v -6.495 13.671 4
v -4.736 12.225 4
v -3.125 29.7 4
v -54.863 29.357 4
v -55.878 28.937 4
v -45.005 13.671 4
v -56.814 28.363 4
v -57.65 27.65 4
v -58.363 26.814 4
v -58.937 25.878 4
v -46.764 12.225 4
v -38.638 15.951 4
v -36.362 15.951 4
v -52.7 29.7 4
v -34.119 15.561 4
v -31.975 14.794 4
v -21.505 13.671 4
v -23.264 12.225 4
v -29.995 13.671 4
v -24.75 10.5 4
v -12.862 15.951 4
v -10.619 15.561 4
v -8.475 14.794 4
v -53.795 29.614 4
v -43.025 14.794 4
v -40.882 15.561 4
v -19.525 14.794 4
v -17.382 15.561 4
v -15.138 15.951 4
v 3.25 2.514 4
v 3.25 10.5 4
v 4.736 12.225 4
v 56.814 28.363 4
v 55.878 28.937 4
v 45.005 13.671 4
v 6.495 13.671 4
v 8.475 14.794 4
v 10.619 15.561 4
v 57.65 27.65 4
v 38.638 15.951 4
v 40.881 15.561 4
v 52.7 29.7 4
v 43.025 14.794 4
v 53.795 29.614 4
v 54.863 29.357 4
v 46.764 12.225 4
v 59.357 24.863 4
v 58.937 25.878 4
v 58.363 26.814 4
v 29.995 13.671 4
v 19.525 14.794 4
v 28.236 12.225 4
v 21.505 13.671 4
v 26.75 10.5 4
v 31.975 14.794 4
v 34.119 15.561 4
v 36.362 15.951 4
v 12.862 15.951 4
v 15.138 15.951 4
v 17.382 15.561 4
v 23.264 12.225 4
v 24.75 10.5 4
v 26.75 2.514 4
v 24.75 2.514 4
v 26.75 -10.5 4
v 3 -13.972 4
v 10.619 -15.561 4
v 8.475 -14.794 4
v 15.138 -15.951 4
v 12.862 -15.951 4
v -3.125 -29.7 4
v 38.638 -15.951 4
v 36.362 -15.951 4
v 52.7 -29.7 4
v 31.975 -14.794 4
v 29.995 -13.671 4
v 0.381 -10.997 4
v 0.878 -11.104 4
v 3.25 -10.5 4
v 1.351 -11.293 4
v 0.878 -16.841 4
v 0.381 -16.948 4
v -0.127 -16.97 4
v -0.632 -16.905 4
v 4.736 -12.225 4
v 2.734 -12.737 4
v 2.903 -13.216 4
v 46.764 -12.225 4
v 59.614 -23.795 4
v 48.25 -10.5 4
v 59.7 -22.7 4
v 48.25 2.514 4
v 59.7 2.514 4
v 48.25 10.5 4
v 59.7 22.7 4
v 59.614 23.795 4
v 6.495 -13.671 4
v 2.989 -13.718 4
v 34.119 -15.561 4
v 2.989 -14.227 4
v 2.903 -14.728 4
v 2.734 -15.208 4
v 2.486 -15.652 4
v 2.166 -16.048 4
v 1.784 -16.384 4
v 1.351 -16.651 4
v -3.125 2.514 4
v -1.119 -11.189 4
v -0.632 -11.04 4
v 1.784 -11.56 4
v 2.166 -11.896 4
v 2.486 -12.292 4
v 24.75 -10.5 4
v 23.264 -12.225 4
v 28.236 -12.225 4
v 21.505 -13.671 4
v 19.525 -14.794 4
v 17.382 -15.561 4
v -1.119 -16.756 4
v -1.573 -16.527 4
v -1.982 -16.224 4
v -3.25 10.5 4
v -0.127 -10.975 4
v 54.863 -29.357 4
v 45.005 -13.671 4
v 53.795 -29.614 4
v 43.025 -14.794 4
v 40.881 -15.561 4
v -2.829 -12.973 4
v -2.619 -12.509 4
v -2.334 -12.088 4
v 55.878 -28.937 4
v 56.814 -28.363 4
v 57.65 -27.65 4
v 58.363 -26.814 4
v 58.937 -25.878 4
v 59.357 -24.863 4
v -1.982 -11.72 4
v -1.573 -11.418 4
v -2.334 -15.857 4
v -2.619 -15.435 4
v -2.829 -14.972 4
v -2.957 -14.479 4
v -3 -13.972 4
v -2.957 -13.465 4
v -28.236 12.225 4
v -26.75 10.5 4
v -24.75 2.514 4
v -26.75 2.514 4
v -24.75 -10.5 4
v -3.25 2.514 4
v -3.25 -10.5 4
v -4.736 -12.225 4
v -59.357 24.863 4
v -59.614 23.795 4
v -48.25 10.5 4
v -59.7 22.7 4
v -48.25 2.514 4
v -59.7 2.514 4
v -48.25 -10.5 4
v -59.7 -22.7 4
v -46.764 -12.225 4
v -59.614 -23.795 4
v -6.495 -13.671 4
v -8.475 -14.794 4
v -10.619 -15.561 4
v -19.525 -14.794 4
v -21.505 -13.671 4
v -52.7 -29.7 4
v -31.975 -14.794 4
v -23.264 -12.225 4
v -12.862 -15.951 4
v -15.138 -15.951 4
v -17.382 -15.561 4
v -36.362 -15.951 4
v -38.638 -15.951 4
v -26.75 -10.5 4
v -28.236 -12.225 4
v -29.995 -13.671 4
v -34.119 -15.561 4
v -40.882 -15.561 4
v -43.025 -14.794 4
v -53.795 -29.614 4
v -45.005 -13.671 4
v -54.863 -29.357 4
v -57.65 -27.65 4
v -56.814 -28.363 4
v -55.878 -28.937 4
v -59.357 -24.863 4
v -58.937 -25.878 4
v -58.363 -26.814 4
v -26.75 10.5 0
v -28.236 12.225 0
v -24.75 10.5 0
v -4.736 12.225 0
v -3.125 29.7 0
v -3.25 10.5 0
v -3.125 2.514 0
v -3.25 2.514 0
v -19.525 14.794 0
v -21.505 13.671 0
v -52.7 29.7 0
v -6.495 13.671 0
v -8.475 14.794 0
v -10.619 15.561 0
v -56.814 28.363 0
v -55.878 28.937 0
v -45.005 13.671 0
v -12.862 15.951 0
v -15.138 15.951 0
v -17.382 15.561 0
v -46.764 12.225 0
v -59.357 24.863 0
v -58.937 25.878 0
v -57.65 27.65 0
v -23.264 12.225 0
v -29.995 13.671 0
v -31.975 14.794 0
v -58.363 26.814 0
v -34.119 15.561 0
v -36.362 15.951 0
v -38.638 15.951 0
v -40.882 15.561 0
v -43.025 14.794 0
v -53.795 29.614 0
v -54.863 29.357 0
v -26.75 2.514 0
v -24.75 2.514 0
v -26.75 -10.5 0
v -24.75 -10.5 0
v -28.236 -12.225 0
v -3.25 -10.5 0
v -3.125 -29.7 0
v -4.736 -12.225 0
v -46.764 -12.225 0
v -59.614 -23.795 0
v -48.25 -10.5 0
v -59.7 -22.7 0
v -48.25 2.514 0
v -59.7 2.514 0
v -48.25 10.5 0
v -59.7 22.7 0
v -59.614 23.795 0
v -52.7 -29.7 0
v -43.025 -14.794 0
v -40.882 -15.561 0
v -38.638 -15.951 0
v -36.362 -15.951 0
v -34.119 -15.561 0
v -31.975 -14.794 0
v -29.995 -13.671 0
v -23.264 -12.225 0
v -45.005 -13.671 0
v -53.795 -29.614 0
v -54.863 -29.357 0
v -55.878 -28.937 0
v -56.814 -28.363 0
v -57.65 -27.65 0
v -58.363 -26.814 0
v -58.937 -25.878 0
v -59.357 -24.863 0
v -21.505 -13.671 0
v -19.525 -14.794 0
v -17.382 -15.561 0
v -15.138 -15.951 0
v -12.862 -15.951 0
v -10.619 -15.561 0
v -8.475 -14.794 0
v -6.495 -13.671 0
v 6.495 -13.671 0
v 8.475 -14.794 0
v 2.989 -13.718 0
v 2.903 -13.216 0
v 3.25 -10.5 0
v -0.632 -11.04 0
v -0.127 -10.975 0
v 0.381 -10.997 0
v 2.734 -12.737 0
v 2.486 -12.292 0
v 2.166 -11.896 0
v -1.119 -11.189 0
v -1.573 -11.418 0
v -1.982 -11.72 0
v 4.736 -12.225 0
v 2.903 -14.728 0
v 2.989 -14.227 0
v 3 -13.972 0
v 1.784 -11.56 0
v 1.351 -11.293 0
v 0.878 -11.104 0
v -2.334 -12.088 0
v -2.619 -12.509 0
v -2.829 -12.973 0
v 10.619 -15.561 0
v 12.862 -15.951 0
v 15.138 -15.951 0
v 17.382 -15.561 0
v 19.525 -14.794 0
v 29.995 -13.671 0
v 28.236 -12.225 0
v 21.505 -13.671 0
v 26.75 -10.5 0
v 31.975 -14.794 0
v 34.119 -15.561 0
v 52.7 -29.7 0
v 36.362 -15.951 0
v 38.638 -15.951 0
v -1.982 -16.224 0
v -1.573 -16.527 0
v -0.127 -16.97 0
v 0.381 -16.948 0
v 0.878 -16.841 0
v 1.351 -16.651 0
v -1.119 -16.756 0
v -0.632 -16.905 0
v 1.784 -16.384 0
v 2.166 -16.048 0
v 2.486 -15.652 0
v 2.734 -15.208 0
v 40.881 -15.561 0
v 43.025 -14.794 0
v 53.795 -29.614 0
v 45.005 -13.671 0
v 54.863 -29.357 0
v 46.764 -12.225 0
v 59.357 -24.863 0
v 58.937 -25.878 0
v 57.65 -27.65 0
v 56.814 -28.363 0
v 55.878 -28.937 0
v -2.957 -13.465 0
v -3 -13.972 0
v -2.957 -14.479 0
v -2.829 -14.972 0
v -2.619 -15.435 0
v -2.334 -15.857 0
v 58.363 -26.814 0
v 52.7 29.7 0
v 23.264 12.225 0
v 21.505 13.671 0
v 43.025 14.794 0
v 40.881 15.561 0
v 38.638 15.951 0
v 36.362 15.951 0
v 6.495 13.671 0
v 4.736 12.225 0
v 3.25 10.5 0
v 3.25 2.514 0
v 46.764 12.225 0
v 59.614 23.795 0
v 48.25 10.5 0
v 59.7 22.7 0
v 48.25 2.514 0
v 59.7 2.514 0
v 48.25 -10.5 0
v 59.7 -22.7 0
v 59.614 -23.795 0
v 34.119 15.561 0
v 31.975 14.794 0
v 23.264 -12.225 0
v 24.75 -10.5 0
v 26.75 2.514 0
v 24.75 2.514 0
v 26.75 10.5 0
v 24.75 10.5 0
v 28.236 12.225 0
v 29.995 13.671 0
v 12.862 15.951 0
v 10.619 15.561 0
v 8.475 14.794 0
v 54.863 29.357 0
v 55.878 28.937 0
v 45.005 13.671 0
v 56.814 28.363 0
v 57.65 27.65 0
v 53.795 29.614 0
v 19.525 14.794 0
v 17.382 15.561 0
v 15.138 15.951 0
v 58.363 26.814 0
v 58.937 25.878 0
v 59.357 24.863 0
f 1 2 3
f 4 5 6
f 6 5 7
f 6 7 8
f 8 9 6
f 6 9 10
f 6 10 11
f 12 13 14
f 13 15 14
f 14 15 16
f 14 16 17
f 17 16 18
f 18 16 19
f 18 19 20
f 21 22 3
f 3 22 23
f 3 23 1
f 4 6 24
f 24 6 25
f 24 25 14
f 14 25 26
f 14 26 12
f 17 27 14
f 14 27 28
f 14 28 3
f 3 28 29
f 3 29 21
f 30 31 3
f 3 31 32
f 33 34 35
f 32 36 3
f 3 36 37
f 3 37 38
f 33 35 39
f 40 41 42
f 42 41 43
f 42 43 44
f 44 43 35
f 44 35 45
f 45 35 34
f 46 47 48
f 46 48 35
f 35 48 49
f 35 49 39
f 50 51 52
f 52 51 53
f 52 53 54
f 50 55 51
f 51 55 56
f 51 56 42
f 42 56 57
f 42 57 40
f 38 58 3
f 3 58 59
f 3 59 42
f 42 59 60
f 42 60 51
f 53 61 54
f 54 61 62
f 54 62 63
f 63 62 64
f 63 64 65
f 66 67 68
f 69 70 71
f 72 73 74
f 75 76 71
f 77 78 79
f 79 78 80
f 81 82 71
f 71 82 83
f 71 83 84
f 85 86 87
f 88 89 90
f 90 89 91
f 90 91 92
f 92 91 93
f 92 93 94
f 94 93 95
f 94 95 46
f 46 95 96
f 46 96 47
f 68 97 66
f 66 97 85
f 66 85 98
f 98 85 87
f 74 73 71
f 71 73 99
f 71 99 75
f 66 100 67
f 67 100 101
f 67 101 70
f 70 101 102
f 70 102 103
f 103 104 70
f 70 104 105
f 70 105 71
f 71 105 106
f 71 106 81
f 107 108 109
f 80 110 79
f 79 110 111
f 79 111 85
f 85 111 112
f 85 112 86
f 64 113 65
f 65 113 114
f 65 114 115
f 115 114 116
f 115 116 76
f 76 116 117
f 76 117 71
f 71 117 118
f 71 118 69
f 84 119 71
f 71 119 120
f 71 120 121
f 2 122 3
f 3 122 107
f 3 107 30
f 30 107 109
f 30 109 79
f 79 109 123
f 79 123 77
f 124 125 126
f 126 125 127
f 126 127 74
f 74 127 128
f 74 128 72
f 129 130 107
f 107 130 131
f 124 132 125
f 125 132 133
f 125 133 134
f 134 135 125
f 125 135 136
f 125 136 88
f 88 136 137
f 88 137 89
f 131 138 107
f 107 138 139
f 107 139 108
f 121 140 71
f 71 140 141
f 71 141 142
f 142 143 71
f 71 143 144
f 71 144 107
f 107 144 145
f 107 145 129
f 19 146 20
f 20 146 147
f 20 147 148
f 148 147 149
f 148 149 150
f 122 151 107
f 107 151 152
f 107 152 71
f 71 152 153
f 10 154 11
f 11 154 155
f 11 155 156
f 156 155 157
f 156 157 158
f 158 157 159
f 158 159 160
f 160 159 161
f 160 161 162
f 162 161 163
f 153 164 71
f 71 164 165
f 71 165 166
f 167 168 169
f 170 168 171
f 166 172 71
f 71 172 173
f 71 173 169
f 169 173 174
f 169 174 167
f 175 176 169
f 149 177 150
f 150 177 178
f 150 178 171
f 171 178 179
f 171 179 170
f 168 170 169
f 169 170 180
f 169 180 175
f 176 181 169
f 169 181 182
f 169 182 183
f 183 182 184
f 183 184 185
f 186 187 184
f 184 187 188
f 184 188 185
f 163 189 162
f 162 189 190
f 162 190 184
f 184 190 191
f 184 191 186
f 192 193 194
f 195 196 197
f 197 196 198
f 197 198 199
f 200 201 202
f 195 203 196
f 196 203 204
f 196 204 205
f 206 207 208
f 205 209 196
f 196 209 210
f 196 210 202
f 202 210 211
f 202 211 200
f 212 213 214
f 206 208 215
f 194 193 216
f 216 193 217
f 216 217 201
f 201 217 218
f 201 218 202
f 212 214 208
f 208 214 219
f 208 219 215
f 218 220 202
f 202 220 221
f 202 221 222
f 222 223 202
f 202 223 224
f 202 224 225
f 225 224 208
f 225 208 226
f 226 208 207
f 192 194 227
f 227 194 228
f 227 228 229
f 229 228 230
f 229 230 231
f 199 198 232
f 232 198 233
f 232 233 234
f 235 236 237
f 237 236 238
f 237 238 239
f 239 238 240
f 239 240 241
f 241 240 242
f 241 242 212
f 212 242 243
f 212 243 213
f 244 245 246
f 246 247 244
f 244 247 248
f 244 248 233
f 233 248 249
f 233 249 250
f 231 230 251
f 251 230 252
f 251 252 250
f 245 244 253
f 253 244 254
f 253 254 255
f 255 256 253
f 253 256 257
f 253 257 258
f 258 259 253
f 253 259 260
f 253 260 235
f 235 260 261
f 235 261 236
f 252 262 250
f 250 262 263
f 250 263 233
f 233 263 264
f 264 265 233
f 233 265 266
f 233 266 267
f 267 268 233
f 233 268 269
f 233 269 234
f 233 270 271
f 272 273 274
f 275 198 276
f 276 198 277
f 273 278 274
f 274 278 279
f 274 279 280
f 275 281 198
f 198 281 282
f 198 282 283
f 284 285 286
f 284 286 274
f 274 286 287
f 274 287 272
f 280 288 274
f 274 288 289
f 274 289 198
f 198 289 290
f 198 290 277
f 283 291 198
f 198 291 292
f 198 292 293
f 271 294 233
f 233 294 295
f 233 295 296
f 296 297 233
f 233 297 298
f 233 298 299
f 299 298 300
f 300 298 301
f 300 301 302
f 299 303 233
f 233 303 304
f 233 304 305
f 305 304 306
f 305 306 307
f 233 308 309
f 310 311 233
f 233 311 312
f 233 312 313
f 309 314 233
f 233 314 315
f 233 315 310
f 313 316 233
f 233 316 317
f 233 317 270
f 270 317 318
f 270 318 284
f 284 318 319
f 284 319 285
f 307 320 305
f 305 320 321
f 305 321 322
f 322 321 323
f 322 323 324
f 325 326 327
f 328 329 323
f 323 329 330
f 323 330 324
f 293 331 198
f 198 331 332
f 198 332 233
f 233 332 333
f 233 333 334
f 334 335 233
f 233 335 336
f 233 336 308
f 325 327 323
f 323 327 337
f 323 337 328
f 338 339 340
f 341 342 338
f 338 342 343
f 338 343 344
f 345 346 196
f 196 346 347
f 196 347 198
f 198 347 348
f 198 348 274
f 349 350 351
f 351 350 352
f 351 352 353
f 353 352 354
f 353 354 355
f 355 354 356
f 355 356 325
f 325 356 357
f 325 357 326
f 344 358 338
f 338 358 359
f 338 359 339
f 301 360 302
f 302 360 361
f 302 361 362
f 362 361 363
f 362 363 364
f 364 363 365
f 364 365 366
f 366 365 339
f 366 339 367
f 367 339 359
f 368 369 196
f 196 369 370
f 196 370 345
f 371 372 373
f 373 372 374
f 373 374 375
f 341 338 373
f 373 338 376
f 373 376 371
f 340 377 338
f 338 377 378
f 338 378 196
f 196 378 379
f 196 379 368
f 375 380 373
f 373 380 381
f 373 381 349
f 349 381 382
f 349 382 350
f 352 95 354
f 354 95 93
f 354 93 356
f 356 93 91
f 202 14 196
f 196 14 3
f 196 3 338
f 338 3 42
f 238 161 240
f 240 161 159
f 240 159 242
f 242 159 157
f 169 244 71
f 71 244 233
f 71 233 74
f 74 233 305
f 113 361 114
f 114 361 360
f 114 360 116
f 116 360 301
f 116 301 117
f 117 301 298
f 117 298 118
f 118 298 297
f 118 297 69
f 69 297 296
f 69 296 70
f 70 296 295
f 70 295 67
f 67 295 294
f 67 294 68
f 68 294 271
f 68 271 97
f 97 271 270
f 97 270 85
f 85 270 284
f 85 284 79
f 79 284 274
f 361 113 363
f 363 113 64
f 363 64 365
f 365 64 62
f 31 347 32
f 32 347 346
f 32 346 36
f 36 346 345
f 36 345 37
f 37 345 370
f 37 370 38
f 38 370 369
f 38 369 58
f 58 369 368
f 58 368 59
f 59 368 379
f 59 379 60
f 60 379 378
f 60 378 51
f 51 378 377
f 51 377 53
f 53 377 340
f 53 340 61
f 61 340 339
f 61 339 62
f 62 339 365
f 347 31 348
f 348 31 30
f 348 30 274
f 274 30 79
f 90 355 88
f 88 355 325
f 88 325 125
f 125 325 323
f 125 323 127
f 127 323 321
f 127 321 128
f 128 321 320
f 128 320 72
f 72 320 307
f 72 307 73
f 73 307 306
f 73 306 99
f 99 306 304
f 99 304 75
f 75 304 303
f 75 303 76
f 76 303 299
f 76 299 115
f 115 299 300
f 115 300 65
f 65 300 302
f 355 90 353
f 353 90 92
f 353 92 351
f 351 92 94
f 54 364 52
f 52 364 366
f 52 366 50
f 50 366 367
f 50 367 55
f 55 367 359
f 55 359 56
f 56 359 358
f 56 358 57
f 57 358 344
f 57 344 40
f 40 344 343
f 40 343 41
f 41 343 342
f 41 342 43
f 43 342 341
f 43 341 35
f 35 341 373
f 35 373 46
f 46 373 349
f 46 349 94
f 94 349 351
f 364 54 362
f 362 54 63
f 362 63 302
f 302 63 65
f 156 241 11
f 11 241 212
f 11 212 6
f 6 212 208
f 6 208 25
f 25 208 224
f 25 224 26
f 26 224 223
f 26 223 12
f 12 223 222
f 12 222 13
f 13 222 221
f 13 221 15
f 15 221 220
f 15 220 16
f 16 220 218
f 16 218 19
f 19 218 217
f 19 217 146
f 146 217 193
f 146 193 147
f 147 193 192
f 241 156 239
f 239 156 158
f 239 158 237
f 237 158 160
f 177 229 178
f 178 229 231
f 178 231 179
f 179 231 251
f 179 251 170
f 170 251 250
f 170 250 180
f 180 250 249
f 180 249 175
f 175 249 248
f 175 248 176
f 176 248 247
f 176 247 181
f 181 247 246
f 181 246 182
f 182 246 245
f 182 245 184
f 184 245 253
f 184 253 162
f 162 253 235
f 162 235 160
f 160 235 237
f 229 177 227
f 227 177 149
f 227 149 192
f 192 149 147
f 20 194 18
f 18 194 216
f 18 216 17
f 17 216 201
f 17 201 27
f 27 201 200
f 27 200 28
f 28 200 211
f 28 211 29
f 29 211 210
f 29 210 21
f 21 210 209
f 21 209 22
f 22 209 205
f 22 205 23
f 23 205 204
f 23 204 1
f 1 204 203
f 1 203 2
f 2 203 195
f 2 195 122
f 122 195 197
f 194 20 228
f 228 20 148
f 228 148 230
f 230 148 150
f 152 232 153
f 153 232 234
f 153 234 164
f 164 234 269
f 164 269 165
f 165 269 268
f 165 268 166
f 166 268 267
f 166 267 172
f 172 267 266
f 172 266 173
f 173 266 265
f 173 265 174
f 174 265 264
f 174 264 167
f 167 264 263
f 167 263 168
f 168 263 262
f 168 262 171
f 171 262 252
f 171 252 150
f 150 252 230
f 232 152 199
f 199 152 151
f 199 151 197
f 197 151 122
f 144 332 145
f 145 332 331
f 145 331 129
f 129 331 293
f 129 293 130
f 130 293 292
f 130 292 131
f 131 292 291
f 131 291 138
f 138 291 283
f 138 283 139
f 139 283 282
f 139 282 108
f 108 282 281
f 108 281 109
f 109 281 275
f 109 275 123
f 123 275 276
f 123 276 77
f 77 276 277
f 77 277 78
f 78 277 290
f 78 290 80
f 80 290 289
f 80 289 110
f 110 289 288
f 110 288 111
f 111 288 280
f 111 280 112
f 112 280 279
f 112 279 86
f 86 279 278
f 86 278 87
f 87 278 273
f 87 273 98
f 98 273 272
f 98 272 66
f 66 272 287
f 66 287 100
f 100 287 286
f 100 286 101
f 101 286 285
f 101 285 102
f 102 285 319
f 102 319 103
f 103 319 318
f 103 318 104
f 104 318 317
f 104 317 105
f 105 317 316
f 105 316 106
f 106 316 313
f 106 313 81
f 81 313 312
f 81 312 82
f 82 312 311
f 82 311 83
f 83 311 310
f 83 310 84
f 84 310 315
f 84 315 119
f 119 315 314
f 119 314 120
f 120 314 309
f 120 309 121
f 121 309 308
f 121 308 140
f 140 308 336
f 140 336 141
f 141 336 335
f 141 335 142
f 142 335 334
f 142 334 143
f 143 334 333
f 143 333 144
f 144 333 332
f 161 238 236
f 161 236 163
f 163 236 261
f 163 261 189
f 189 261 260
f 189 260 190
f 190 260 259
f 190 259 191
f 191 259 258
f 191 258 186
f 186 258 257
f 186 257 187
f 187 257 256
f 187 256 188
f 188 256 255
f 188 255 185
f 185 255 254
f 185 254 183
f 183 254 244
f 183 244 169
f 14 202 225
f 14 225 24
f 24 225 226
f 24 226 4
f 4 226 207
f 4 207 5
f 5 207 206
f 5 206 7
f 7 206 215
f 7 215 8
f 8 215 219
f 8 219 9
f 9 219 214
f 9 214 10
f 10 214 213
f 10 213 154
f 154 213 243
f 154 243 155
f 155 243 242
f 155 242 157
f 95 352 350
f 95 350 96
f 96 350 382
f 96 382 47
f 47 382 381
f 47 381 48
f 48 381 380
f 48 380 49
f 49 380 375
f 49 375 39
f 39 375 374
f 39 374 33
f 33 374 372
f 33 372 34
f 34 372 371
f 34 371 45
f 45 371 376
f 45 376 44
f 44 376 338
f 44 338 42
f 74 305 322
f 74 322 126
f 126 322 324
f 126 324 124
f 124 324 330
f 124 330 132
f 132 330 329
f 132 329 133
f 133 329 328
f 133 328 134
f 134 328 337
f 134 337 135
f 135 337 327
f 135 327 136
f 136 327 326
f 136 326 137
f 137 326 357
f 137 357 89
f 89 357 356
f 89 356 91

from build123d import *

# Parameters (mm, degrees)
SKETCH_1_W      = 119.4
SKETCH_1_H      = 59.4
SKETCH_1_R      = 3
EXTRUDE_1_DEPTH = 4
FILLET_1_R      = 7


with BuildPart() as part:
    # Эскиз1 → Бобышка-Вытянуть1 (new body)
    with BuildSketch(Plane.XY):
        Rectangle(SKETCH_1_W, SKETCH_1_H)
        with Locations((0, -13.97221548)):
            Circle(SKETCH_1_R, mode=Mode.SUBTRACT)
        with BuildLine():
            Line((3.25, 10.5), (3.25, -10.5))
            ThreePointArc((3.25, -10.5), (14, -16), (24.75, -10.5))
            Line((24.75, -10.5), (24.75, 10.5))
            ThreePointArc((24.75, 10.5), (14, 16), (3.25, 10.5))
        make_face(mode=Mode.SUBTRACT)
        with BuildLine():
            Line((48.25, 10.5), (48.25, -10.5))
            ThreePointArc((48.25, -10.5), (37.5, -16), (26.75, -10.5))
            Line((26.75, -10.5), (26.75, 10.5))
            ThreePointArc((26.75, 10.5), (37.5, 16), (48.25, 10.5))
        make_face(mode=Mode.SUBTRACT)
        with BuildLine():
            Line((-26.75, 10.5), (-26.75, -10.5))
            ThreePointArc((-26.75, -10.5), (-37.5, -16), (-48.25, -10.5))
            Line((-48.25, -10.5), (-48.25, 10.5))
            ThreePointArc((-48.25, 10.5), (-37.5, 16), (-26.75, 10.5))
        make_face(mode=Mode.SUBTRACT)
        with BuildLine():
            Line((-3.25, 10.5), (-3.25, -10.5))
            ThreePointArc((-3.25, -10.5), (-14, -16), (-24.75, -10.5))
            Line((-24.75, -10.5), (-24.75, 10.5))
            ThreePointArc((-24.75, 10.5), (-14, 16), (-3.25, 10.5))
        make_face(mode=Mode.SUBTRACT)
    extrude(amount=EXTRUDE_1_DEPTH)

    # Скругление1
    fillet_1_edges = [part.edges().sort_by_distance(p)[0] for p in [
        (59.7, -29.7, 2),
        (-59.7, -29.7, 2),
        (-59.7, 29.7, 2),
        (59.7, 29.7, 2),
    ]]
    fillet(fillet_1_edges, radius=FILLET_1_R)


solid = part.part
